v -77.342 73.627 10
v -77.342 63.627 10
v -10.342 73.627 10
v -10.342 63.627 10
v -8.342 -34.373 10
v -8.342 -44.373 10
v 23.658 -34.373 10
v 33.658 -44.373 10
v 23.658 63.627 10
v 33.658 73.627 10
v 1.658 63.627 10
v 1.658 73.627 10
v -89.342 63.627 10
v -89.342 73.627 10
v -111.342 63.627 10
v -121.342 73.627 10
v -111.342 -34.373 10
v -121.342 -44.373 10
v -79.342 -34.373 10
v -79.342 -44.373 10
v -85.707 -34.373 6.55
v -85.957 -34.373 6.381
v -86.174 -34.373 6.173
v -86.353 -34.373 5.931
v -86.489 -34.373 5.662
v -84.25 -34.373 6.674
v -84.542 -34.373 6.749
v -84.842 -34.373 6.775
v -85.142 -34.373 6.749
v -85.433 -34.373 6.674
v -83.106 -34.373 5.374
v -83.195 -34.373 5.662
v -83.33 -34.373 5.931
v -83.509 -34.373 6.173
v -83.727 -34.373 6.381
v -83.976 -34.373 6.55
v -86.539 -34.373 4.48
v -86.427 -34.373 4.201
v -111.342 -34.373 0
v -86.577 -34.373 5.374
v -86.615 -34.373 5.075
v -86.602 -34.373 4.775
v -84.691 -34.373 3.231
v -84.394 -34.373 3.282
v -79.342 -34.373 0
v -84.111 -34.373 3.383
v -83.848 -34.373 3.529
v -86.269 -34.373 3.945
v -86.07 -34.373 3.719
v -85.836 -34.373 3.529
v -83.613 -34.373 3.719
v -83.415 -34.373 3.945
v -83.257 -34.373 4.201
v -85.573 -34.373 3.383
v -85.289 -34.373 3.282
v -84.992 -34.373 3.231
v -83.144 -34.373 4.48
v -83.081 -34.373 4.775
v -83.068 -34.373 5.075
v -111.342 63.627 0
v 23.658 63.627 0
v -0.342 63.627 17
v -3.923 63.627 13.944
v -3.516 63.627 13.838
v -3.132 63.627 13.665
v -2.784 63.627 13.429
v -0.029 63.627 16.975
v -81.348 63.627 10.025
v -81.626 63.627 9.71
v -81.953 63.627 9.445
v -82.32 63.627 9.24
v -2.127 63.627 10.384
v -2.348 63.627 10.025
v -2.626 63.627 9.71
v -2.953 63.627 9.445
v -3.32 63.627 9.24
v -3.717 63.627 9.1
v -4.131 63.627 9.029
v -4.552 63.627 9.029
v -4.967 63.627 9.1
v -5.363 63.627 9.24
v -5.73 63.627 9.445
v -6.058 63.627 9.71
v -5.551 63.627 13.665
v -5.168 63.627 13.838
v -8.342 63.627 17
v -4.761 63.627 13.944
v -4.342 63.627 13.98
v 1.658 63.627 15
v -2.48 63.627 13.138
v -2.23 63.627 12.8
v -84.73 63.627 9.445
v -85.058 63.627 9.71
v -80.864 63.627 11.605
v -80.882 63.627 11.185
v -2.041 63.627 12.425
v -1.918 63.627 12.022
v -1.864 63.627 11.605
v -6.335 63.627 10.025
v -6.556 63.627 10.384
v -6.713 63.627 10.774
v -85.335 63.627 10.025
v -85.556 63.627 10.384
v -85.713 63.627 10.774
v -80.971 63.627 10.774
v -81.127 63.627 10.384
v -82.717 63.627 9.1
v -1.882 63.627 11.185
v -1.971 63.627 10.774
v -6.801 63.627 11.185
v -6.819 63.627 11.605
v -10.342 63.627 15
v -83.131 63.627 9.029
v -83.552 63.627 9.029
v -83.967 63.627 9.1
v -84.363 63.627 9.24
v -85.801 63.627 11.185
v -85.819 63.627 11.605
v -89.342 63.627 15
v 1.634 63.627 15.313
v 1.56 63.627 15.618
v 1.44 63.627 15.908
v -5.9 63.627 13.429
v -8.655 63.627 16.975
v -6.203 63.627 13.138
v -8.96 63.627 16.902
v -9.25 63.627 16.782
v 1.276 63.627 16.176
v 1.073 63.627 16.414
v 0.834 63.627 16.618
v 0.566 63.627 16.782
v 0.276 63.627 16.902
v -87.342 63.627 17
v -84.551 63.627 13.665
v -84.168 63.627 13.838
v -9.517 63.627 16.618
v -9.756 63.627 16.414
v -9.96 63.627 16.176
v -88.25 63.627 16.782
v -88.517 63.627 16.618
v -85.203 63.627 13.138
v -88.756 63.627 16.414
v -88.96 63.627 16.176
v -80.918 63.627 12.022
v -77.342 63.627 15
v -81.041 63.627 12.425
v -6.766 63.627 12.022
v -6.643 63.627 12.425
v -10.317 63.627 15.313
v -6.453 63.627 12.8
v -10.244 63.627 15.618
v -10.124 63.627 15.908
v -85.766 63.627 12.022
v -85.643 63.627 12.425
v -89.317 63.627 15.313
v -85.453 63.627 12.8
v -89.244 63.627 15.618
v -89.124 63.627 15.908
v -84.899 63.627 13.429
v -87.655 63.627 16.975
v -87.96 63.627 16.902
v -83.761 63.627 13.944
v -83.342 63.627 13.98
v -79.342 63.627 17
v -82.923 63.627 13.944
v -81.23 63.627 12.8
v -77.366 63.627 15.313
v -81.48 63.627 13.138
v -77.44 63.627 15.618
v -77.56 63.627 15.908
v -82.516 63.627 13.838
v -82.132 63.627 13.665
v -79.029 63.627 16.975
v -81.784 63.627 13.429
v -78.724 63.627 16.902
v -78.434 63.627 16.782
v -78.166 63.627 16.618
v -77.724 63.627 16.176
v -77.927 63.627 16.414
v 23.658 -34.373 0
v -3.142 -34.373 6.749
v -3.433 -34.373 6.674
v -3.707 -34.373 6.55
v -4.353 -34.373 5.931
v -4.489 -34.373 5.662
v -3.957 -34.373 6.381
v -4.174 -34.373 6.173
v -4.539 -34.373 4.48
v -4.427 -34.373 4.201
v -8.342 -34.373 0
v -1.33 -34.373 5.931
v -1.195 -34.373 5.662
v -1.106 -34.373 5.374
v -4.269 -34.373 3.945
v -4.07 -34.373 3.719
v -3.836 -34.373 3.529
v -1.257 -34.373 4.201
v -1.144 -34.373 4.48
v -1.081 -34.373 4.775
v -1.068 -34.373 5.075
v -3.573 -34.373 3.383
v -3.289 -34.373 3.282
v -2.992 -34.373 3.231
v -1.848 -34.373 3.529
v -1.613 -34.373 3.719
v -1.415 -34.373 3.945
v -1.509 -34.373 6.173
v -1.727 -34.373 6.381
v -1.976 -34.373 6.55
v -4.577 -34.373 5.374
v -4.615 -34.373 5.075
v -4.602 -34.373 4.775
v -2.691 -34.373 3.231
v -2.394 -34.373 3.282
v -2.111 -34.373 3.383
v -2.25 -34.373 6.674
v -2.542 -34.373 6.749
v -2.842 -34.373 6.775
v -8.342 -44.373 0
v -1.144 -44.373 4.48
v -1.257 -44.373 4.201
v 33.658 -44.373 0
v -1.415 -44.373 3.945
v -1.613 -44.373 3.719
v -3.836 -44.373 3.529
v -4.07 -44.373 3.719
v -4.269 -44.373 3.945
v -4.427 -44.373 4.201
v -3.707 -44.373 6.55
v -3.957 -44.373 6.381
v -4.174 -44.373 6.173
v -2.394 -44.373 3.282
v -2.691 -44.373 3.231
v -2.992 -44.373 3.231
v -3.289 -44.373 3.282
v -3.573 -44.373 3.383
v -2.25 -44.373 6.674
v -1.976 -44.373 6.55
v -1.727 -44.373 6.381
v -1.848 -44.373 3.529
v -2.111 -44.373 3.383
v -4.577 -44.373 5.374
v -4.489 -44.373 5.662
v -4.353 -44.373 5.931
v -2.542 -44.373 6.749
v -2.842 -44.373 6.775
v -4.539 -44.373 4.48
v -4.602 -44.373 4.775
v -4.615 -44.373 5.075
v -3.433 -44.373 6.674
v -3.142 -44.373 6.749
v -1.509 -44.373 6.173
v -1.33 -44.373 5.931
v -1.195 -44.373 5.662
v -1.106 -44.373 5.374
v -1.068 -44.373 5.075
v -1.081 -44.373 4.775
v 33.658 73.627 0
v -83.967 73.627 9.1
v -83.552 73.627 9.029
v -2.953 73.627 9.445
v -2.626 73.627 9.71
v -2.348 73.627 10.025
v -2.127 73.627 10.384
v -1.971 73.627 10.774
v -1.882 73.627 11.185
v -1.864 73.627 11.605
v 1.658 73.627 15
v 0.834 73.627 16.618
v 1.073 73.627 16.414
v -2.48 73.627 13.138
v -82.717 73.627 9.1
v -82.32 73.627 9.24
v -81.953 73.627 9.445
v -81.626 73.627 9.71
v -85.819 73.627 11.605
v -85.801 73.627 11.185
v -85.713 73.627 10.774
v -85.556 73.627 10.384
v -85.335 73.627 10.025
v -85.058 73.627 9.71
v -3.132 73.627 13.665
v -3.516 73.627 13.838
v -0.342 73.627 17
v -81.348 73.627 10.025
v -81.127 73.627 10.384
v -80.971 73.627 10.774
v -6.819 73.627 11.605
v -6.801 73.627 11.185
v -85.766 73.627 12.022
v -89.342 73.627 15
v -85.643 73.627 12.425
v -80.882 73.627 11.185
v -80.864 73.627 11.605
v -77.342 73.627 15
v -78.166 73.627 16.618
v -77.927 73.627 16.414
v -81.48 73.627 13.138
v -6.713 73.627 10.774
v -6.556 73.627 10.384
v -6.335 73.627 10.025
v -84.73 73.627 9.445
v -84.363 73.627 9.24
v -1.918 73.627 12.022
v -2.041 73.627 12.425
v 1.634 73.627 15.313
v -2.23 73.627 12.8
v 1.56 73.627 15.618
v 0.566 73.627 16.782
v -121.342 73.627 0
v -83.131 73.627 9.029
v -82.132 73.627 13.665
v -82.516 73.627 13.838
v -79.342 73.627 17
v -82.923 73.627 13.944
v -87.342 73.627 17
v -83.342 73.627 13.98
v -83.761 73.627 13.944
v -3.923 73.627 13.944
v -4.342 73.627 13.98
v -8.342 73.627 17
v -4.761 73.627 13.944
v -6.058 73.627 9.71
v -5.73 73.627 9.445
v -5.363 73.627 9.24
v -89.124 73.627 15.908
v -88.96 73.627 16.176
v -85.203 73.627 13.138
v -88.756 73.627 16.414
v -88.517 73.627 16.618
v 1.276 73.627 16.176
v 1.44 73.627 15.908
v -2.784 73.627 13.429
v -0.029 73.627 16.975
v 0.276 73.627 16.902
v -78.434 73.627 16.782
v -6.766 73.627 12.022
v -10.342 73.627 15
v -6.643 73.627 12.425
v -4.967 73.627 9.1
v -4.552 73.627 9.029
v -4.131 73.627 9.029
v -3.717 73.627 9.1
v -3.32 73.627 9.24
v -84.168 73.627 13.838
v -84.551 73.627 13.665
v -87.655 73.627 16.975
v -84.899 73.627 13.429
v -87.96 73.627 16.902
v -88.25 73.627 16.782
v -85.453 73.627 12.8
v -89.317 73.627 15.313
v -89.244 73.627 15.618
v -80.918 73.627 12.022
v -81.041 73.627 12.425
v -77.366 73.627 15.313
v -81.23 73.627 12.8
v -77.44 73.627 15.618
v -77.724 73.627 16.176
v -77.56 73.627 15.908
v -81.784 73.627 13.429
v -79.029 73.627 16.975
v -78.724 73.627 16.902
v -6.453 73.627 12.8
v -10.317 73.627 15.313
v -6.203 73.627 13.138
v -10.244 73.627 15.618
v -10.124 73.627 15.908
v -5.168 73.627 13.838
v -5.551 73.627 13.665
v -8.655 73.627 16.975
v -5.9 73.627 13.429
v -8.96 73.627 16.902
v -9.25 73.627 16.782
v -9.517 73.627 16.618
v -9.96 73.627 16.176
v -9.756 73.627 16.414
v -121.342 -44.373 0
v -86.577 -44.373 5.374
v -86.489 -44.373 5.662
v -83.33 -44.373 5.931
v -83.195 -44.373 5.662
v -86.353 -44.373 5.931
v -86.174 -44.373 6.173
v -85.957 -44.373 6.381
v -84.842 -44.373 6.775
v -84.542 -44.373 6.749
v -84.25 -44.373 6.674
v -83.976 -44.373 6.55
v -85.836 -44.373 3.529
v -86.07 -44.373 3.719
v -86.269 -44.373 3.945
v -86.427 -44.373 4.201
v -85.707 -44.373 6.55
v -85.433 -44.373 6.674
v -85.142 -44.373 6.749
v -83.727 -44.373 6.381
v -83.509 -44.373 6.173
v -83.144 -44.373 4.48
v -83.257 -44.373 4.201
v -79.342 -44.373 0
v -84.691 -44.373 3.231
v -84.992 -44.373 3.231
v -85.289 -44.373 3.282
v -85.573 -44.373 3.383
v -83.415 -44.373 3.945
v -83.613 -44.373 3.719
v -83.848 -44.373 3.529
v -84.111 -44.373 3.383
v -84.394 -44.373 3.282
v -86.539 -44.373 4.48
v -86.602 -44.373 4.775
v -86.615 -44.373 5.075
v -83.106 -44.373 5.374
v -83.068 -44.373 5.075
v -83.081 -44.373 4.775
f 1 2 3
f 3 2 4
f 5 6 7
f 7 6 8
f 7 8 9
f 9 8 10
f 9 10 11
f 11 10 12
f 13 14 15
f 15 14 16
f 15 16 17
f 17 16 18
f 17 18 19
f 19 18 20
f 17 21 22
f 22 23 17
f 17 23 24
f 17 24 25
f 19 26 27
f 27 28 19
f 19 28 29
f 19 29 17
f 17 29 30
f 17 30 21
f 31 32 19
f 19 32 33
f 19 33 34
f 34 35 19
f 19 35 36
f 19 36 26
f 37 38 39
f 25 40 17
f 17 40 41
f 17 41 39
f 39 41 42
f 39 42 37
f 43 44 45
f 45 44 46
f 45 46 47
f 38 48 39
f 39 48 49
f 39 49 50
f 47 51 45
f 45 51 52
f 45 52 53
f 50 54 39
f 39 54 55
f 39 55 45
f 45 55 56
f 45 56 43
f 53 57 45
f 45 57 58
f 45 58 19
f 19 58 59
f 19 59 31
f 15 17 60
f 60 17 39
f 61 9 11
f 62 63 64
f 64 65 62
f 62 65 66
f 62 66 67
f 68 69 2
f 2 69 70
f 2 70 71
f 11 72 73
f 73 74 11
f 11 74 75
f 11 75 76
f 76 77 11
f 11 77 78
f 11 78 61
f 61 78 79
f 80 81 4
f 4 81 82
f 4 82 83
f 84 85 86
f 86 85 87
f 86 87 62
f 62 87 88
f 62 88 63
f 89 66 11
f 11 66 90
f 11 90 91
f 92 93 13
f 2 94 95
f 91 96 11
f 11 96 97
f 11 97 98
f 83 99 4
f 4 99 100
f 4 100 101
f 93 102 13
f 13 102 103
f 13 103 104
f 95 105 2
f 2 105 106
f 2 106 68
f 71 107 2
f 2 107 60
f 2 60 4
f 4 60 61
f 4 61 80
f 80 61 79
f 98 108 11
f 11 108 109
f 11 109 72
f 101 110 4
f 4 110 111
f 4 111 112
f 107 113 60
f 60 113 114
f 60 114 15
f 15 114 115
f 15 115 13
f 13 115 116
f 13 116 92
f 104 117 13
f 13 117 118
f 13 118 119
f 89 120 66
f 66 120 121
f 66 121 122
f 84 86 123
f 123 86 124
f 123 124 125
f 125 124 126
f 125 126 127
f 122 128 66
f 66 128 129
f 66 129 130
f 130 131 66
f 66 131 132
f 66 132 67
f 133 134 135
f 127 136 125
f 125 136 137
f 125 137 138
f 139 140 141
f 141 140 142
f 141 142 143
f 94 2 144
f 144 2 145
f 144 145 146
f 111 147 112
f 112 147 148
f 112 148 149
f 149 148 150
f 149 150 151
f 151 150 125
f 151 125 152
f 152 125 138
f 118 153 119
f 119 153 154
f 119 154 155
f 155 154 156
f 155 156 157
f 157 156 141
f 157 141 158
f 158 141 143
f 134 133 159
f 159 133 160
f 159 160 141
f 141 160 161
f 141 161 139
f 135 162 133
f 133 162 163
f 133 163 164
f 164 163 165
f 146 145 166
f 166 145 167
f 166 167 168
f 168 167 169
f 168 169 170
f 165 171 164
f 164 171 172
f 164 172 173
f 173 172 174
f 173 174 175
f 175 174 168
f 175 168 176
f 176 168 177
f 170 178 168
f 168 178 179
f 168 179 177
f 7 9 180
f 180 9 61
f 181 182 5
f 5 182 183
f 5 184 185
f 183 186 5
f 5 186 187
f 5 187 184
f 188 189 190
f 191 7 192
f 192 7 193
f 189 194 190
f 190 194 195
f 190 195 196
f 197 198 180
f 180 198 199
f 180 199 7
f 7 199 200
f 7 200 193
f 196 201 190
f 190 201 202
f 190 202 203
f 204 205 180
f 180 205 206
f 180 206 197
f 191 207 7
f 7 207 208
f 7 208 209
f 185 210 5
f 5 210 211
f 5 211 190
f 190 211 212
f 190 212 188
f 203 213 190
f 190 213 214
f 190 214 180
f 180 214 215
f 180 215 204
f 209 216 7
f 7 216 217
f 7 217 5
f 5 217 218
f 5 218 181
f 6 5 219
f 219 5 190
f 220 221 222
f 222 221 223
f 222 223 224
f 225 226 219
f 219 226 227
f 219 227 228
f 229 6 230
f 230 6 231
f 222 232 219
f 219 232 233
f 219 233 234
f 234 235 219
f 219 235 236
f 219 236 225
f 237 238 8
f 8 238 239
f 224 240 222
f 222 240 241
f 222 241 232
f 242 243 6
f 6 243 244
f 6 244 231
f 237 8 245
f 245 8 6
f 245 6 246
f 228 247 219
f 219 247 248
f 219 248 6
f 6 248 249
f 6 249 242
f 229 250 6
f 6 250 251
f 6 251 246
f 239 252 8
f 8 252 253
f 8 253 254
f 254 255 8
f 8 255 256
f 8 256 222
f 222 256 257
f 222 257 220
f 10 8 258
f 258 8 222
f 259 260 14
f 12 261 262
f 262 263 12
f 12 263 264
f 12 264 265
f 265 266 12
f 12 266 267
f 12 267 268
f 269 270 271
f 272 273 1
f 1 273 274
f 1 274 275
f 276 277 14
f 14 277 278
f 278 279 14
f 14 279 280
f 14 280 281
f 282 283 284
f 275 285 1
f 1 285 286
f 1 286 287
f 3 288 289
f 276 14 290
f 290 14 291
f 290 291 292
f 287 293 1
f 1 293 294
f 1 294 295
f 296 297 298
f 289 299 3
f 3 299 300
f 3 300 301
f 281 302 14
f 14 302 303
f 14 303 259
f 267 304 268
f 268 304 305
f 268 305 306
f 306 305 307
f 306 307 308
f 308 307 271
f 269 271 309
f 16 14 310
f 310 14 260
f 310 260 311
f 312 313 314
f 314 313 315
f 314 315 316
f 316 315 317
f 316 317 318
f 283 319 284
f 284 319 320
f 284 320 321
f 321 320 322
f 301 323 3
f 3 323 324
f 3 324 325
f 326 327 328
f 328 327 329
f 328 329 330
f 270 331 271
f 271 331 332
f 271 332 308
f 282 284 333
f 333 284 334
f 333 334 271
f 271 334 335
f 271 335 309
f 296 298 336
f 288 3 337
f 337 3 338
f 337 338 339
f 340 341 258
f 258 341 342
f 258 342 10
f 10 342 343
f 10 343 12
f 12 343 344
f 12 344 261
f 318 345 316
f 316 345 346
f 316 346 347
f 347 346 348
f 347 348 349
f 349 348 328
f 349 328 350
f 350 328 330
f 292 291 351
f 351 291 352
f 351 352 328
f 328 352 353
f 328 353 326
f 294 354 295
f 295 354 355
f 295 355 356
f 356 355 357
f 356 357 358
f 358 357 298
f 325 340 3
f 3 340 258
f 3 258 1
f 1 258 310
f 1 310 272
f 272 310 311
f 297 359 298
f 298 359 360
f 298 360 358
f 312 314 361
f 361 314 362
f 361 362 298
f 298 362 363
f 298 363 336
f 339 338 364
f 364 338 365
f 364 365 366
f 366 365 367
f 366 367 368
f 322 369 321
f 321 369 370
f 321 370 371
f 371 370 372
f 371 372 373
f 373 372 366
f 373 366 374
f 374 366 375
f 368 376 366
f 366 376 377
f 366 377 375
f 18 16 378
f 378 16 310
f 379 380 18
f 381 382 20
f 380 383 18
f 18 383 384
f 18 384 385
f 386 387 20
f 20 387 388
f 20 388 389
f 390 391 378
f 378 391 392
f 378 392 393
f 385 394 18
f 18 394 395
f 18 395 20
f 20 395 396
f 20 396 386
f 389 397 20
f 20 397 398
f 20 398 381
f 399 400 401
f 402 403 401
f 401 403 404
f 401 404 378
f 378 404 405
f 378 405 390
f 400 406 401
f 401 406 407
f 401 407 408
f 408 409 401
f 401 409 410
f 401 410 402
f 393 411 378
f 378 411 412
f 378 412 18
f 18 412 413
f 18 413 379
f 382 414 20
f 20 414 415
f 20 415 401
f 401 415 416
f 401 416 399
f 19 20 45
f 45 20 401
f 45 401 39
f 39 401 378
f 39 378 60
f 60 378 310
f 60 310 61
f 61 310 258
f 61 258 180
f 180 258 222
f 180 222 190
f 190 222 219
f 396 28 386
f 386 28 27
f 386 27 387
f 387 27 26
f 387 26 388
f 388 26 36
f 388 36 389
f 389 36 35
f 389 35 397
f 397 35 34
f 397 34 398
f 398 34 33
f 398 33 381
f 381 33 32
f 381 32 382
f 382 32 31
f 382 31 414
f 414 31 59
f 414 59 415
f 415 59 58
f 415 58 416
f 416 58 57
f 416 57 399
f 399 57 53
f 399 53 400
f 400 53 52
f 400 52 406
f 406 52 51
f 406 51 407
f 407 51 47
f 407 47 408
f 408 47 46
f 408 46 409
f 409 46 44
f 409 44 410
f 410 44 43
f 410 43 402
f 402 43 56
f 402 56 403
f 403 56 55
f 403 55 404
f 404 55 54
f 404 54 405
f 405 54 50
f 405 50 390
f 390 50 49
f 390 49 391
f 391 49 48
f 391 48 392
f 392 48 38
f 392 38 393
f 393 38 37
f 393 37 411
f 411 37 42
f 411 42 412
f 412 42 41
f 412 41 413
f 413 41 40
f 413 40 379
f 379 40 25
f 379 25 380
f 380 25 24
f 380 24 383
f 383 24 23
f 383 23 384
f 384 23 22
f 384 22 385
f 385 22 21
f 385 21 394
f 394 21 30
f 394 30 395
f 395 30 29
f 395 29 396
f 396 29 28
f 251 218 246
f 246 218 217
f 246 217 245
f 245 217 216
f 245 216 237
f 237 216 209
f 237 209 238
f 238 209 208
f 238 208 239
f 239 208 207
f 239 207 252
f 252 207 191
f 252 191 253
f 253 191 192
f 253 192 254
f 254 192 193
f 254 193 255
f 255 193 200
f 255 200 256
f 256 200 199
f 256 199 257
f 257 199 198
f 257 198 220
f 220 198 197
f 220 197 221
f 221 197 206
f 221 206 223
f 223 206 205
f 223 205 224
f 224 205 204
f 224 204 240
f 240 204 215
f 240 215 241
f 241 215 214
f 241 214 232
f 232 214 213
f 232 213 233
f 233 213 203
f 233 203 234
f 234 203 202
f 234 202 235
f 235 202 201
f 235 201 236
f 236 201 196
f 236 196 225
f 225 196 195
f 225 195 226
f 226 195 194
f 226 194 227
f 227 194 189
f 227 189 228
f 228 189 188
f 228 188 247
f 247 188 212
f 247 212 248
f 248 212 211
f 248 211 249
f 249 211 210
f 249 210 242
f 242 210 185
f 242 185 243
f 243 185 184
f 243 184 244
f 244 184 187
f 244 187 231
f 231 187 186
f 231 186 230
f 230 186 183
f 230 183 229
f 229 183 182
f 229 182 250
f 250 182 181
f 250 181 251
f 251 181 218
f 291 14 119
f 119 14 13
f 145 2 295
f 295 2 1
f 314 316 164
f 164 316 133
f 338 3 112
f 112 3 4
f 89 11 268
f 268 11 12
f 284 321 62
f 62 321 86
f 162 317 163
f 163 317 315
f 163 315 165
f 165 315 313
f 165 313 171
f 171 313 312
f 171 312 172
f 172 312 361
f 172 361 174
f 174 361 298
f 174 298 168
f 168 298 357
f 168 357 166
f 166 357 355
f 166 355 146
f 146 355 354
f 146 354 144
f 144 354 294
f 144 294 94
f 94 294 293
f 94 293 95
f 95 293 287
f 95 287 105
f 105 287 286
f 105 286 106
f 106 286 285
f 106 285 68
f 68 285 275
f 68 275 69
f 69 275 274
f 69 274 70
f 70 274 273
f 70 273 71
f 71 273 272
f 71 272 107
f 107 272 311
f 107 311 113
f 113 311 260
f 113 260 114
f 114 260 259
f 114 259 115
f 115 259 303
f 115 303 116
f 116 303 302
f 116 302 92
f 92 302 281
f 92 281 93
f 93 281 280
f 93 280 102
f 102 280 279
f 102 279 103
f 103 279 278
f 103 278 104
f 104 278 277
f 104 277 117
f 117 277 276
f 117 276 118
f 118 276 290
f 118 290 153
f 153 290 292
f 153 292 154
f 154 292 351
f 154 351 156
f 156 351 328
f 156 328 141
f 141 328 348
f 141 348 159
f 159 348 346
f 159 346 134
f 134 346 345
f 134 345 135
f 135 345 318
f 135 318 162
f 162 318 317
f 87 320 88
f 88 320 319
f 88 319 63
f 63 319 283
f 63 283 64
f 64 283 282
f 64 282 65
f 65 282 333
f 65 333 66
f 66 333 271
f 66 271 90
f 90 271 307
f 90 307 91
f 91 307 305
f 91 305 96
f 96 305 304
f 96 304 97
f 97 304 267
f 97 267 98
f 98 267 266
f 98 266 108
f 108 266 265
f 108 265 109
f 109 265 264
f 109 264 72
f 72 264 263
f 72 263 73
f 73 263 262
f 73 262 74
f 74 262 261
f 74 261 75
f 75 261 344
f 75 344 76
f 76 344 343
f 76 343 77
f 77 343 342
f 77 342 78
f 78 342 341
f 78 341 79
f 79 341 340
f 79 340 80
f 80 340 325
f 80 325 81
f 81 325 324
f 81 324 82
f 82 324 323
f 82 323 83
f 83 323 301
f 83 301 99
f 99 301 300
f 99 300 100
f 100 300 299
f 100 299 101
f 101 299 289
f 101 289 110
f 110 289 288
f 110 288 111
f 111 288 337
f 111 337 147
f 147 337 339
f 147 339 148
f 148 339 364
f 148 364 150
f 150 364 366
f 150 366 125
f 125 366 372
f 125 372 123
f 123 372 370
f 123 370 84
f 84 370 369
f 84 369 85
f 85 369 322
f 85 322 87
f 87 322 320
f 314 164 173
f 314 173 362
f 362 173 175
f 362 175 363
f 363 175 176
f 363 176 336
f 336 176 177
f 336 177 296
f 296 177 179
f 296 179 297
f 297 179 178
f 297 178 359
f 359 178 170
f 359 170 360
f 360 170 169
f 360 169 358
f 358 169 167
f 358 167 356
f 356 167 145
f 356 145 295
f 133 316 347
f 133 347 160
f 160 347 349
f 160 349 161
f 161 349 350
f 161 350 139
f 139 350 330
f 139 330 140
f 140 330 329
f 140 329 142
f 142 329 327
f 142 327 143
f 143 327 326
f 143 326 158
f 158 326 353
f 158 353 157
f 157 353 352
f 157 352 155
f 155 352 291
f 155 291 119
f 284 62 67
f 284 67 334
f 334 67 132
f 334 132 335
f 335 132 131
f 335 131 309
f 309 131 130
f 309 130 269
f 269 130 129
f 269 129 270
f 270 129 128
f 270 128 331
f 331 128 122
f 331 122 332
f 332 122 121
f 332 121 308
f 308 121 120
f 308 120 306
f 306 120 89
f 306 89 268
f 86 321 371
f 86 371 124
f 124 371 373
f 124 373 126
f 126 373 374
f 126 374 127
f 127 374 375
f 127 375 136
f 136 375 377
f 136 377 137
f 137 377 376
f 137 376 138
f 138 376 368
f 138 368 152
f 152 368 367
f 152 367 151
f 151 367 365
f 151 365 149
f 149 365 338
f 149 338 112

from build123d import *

# Parameters (mm, degrees)
BOSS_EXTRUDE1_DEPTH = 10
SKETCH3_R           = 1.775
CUT_EXTRUDE2_DEPTH  = 163.750712068
SKETCH4_W           = 12
SKETCH4_H           = 10
BOSS_EXTRUDE2_DEPTH = 7
SKETCH5_R           = 2.479798403
CUT_EXTRUDE3_DEPTH  = 10
FILLET1_R           = 2
FILLET2_R           = 2


with BuildPart() as part:
    # Sketch1 → Boss-Extrude1 (new body)
    with BuildSketch(Plane.XY):
        Polygon((-79.341642805, -34.372803322), (-79.341642805, -44.372803322), (-121.341642805, -44.372803322), (-121.341642805, 73.627196678), (33.658357195, 73.627196678), (33.658357195, -44.372803322), (-8.341642805, -44.372803322), (-8.341642805, -34.372803322), (23.658357195, -34.372803322), (23.658357195, 63.627196678), (-111.341642805, 63.627196678), (-111.341642805, -34.372803322), align=None)
    extrude(amount=BOSS_EXTRUDE1_DEPTH)

    # Sketch3 → Cut-Extrude2 (cut, through all)
    with BuildSketch(Plane(origin=(0, -34.372803322, 0), x_dir=(1, 0, 0), z_dir=(0, 1, 0))):
        with Locations(Location((-84.841642805, -5, 0), (0, 0, 270))):
            Circle(SKETCH3_R)
        with Locations(Location((-2.841642805, -5, 0), (0, 0, 270))):
            Circle(SKETCH3_R)
    extrude(amount=-CUT_EXTRUDE2_DEPTH, mode=Mode.SUBTRACT)

    # Sketch4 → Boss-Extrude2 (add)
    with BuildSketch(Plane.XY.offset(10)):
        with Locations((-83.341642805, 68.627196678)):
            Rectangle(SKETCH4_W, SKETCH4_H)
        with Locations((-4.341642805, 68.627196678)):
            Rectangle(SKETCH4_W, SKETCH4_H)
    extrude(amount=BOSS_EXTRUDE2_DEPTH)

    # Sketch5 → Cut-Extrude3 (cut)
    with BuildSketch(Plane(origin=(0, 73.627196678, 0), x_dir=(1, 0, 0), z_dir=(0, 1, 0))):
        with Locations(Location((-83.341642805, -11.5, 0), (0, 0, 270))):
            Circle(SKETCH5_R)
        with Locations(Location((-4.341642805, -11.5, 0), (0, 0, 270))):
            Circle(SKETCH5_R)
    extrude(amount=-CUT_EXTRUDE3_DEPTH, mode=Mode.SUBTRACT)

    # Fillet1
    fillet1_edges = [part.edges().sort_by_distance(p)[0] for p in [
        (-77.341642805, 68.627196678, 17),
        (-89.341642805, 68.627196678, 17),
    ]]
    fillet(fillet1_edges, radius=FILLET1_R)

    # Fillet2
    fillet2_edges = [part.edges().sort_by_distance(p)[0] for p in [
        (-10.341642805, 68.627196678, 17),
        (1.658357195, 68.627196678, 17),
    ]]
    fillet(fillet2_edges, radius=FILLET2_R)


solid = part.part
